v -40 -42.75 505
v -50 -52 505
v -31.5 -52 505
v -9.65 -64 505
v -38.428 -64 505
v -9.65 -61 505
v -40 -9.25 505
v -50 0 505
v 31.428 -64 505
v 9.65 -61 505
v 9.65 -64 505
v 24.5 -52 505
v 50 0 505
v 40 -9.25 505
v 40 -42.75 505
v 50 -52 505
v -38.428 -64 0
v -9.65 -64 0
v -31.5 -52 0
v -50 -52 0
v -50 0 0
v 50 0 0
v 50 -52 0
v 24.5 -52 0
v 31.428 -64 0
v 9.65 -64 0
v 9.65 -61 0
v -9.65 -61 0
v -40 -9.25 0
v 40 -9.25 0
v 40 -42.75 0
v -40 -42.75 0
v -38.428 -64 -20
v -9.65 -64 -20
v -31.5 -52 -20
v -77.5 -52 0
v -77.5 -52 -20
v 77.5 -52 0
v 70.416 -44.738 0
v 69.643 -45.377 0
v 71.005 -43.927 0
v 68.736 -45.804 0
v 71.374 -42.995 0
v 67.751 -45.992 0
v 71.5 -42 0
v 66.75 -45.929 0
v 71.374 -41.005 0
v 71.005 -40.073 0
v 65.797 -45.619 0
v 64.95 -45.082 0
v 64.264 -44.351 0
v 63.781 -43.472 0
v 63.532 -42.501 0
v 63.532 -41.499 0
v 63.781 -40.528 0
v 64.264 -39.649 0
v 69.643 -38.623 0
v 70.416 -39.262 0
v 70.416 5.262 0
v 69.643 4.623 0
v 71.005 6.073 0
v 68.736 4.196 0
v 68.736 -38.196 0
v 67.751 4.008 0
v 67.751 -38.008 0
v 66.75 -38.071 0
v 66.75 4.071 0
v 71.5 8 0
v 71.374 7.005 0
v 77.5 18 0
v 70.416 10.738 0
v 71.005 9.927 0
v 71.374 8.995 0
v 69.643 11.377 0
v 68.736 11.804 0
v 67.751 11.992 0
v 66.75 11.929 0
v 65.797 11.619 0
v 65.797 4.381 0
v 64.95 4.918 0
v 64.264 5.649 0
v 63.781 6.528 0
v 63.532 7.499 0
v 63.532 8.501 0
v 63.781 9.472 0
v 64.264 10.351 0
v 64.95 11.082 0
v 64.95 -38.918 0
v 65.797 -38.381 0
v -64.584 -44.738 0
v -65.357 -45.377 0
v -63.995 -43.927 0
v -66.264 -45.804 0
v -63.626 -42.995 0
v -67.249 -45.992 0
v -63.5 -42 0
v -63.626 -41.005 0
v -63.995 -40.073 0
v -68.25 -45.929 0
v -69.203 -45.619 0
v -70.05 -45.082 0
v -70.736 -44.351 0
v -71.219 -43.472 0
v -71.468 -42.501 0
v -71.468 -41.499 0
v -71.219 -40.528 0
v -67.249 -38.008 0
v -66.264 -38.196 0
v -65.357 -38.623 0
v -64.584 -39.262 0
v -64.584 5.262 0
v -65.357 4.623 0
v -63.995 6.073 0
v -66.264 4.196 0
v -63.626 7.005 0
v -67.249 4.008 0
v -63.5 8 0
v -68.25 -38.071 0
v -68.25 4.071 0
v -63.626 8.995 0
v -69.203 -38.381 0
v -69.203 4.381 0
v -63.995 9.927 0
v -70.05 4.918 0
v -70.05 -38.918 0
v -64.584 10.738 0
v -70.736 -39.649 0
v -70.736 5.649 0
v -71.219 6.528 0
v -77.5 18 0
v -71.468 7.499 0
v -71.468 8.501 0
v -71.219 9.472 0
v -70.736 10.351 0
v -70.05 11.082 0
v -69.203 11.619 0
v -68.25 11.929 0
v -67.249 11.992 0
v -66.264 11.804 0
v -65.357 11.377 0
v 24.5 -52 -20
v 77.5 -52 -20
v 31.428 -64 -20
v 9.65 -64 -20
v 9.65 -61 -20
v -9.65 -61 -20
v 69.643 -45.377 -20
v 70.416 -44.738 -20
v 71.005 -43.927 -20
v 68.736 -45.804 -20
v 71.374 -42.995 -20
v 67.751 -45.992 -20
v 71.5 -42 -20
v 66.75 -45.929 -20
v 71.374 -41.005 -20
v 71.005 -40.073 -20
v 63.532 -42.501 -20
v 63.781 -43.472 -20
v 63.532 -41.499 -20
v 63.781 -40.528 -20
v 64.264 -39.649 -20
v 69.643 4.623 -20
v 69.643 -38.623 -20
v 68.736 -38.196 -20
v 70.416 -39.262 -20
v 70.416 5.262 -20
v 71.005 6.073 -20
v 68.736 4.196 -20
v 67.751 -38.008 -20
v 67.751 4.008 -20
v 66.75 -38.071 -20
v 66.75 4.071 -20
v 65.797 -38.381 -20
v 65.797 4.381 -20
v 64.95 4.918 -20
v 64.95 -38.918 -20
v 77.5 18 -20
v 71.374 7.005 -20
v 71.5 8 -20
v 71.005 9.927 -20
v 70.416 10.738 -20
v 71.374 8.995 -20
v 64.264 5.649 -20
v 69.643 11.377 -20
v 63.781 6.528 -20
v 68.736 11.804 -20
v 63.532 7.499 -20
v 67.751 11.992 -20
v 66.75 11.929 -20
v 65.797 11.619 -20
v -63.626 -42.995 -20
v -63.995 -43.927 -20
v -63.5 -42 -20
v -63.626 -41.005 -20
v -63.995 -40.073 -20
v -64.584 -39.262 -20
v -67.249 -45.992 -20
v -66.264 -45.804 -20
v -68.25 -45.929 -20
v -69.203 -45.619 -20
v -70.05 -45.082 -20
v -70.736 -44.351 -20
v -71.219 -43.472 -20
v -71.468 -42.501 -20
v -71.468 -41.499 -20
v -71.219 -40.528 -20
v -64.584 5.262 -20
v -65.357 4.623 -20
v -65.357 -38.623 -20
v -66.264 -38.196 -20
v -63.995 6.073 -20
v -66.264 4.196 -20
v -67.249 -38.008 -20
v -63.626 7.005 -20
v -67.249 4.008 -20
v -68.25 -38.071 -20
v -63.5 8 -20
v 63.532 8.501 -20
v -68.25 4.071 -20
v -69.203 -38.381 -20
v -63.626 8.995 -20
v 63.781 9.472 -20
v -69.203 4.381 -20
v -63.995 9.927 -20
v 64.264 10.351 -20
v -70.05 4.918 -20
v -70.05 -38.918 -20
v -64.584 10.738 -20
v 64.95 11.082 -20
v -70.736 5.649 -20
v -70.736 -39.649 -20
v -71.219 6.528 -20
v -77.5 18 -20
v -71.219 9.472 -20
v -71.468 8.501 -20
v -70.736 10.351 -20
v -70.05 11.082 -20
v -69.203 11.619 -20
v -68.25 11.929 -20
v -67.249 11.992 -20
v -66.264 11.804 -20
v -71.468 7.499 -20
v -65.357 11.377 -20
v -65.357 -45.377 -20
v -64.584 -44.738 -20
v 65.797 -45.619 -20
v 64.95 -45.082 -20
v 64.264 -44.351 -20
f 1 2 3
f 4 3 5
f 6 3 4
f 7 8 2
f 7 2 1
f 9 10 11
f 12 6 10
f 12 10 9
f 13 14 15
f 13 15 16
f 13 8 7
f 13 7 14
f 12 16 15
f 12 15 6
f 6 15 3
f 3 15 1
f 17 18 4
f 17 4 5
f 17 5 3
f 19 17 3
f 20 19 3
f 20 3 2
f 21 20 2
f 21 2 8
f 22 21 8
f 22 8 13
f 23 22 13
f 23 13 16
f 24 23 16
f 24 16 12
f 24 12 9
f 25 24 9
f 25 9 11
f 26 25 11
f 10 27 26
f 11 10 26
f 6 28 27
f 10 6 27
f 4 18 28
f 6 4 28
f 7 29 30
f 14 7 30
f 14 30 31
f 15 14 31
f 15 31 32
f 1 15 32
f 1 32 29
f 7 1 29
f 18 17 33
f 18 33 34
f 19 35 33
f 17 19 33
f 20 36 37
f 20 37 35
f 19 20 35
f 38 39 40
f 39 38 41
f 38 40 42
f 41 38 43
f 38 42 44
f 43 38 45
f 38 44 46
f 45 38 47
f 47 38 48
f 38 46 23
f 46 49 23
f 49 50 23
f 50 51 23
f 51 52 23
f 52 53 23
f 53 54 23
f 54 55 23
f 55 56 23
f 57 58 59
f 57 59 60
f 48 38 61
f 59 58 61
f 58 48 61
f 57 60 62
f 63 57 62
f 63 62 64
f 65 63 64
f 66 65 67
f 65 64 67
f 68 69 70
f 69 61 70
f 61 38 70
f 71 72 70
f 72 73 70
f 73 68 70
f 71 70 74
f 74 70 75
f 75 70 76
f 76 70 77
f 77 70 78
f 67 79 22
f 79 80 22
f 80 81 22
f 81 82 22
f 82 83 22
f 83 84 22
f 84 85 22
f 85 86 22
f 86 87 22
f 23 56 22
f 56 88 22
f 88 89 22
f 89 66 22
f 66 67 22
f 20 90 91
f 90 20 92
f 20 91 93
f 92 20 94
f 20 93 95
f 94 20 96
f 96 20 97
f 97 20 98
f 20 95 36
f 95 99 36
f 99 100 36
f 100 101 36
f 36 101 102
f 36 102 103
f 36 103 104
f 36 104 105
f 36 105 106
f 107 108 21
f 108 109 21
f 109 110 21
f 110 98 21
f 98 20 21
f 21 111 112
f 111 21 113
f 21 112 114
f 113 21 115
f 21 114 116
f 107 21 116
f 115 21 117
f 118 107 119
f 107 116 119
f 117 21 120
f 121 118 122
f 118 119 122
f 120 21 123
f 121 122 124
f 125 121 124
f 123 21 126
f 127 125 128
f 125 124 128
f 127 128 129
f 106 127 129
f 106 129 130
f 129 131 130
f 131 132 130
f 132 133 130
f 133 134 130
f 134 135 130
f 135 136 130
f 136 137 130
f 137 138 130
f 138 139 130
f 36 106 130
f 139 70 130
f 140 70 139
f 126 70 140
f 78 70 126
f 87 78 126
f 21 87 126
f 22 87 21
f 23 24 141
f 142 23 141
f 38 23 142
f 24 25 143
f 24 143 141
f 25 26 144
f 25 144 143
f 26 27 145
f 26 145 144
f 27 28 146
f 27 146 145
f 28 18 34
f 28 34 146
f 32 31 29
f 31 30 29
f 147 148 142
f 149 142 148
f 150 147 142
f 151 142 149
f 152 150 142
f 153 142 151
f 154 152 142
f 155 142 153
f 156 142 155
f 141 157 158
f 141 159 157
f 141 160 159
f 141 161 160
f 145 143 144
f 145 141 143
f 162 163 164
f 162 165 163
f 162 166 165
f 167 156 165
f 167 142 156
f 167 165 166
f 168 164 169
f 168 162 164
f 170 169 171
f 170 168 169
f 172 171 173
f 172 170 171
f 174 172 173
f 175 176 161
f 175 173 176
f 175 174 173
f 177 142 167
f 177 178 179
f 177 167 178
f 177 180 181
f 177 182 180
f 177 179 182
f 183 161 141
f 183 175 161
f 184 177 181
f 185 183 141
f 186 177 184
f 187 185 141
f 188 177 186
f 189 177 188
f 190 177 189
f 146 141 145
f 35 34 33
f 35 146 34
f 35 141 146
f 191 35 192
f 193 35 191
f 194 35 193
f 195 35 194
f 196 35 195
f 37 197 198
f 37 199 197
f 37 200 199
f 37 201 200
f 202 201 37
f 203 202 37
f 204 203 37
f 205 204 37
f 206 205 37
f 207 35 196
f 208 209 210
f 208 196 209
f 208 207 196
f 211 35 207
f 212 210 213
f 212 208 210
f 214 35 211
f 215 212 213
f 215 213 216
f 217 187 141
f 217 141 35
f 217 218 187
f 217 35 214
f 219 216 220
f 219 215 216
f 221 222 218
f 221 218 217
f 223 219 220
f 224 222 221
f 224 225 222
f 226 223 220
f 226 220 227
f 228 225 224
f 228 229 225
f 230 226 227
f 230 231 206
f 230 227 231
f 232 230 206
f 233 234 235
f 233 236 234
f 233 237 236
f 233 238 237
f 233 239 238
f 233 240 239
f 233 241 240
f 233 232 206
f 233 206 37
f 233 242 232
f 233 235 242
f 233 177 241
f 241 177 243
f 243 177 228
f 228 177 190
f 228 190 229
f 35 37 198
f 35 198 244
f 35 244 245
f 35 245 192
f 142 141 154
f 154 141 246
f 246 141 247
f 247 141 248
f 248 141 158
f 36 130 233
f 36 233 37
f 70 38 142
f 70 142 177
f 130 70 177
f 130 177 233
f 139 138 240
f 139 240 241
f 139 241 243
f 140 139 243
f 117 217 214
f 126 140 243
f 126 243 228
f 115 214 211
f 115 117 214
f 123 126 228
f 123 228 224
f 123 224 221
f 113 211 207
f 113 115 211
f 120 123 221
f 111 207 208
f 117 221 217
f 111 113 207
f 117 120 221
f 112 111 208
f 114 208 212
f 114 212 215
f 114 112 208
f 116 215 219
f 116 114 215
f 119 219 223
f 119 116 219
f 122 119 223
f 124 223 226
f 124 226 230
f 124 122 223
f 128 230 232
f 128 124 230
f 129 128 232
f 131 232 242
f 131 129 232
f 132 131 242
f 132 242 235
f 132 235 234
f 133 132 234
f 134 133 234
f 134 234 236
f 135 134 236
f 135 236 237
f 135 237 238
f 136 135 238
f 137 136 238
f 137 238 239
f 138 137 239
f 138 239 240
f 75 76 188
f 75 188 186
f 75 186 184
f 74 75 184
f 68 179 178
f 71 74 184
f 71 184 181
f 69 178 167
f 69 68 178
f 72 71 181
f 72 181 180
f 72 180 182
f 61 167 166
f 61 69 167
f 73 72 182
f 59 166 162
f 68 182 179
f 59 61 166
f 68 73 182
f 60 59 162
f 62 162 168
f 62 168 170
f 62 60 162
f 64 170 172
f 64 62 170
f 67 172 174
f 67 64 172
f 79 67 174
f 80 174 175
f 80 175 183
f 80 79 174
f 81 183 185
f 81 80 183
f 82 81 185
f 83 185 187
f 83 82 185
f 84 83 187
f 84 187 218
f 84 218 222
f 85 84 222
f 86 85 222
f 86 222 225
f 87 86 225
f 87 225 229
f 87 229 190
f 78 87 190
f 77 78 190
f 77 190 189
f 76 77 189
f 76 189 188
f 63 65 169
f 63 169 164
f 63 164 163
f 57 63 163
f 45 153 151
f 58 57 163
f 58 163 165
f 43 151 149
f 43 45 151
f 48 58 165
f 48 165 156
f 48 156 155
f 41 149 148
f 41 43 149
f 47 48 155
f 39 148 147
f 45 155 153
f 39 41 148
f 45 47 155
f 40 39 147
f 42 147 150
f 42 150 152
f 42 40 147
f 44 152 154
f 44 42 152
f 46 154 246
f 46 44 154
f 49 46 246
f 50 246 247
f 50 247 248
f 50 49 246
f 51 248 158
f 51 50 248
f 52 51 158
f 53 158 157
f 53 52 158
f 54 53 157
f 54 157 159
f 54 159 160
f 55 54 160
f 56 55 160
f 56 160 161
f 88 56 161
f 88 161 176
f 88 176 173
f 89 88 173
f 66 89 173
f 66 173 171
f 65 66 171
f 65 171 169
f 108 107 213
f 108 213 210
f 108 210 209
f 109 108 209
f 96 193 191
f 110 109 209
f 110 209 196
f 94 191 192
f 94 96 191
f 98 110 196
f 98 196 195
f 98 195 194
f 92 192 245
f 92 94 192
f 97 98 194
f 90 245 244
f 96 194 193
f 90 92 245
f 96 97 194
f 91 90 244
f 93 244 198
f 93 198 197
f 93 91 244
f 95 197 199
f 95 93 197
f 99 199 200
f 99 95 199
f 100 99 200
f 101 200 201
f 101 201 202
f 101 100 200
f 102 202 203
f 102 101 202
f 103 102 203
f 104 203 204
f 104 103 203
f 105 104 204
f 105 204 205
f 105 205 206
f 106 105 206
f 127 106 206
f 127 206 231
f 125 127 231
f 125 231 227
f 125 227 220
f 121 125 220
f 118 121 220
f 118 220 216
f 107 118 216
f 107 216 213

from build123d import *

# Parameters (mm, degrees)
SKETCH002_W  = 80
SKETCH002_H  = 33.5
PAD_DEPTH    = 505
SKETCH001_R  = 4
PAD001_DEPTH = 20


with BuildPart() as part:
    # Sketch002 → Pad (new body)
    with BuildSketch(Plane.XY):
        Polygon((-50, 0), (50, 0), (50, -52), (24.5, -52), (31.428203, -64), (9.65, -64), (9.65, -61), (-9.65, -61), (-9.65, -64), (-38.428203, -64), (-31.5, -52), (-50, -52), align=None)
        with Locations((0, -26)):
            Rectangle(SKETCH002_W, SKETCH002_H, mode=Mode.SUBTRACT)
    extrude(amount=PAD_DEPTH)

    # Sketch001 → Pad001 (new body)
    with BuildSketch(Plane(origin=(0, 0, 0), x_dir=(1, 0, 0), z_dir=(0, 0, -1))):
        Polygon((77.5, 52), (77.5, -18), (-77.5, -18), (-77.5, 52), (-31.5, 52), (-38.428203, 64), (-9.65, 64), (-9.65, 61), (9.65, 61), (9.65, 64), (31.428203, 64), (24.5, 52), align=None)
        with Locations((-67.5, 42)):
            Circle(SKETCH001_R, mode=Mode.SUBTRACT)
        with Locations((-67.5, -8)):
            Circle(SKETCH001_R, mode=Mode.SUBTRACT)
        with Locations((67.5, 42)):
            Circle(SKETCH001_R, mode=Mode.SUBTRACT)
        with Locations((67.5, -8)):
            Circle(SKETCH001_R, mode=Mode.SUBTRACT)
    extrude(amount=PAD001_DEPTH)


solid = part.part
